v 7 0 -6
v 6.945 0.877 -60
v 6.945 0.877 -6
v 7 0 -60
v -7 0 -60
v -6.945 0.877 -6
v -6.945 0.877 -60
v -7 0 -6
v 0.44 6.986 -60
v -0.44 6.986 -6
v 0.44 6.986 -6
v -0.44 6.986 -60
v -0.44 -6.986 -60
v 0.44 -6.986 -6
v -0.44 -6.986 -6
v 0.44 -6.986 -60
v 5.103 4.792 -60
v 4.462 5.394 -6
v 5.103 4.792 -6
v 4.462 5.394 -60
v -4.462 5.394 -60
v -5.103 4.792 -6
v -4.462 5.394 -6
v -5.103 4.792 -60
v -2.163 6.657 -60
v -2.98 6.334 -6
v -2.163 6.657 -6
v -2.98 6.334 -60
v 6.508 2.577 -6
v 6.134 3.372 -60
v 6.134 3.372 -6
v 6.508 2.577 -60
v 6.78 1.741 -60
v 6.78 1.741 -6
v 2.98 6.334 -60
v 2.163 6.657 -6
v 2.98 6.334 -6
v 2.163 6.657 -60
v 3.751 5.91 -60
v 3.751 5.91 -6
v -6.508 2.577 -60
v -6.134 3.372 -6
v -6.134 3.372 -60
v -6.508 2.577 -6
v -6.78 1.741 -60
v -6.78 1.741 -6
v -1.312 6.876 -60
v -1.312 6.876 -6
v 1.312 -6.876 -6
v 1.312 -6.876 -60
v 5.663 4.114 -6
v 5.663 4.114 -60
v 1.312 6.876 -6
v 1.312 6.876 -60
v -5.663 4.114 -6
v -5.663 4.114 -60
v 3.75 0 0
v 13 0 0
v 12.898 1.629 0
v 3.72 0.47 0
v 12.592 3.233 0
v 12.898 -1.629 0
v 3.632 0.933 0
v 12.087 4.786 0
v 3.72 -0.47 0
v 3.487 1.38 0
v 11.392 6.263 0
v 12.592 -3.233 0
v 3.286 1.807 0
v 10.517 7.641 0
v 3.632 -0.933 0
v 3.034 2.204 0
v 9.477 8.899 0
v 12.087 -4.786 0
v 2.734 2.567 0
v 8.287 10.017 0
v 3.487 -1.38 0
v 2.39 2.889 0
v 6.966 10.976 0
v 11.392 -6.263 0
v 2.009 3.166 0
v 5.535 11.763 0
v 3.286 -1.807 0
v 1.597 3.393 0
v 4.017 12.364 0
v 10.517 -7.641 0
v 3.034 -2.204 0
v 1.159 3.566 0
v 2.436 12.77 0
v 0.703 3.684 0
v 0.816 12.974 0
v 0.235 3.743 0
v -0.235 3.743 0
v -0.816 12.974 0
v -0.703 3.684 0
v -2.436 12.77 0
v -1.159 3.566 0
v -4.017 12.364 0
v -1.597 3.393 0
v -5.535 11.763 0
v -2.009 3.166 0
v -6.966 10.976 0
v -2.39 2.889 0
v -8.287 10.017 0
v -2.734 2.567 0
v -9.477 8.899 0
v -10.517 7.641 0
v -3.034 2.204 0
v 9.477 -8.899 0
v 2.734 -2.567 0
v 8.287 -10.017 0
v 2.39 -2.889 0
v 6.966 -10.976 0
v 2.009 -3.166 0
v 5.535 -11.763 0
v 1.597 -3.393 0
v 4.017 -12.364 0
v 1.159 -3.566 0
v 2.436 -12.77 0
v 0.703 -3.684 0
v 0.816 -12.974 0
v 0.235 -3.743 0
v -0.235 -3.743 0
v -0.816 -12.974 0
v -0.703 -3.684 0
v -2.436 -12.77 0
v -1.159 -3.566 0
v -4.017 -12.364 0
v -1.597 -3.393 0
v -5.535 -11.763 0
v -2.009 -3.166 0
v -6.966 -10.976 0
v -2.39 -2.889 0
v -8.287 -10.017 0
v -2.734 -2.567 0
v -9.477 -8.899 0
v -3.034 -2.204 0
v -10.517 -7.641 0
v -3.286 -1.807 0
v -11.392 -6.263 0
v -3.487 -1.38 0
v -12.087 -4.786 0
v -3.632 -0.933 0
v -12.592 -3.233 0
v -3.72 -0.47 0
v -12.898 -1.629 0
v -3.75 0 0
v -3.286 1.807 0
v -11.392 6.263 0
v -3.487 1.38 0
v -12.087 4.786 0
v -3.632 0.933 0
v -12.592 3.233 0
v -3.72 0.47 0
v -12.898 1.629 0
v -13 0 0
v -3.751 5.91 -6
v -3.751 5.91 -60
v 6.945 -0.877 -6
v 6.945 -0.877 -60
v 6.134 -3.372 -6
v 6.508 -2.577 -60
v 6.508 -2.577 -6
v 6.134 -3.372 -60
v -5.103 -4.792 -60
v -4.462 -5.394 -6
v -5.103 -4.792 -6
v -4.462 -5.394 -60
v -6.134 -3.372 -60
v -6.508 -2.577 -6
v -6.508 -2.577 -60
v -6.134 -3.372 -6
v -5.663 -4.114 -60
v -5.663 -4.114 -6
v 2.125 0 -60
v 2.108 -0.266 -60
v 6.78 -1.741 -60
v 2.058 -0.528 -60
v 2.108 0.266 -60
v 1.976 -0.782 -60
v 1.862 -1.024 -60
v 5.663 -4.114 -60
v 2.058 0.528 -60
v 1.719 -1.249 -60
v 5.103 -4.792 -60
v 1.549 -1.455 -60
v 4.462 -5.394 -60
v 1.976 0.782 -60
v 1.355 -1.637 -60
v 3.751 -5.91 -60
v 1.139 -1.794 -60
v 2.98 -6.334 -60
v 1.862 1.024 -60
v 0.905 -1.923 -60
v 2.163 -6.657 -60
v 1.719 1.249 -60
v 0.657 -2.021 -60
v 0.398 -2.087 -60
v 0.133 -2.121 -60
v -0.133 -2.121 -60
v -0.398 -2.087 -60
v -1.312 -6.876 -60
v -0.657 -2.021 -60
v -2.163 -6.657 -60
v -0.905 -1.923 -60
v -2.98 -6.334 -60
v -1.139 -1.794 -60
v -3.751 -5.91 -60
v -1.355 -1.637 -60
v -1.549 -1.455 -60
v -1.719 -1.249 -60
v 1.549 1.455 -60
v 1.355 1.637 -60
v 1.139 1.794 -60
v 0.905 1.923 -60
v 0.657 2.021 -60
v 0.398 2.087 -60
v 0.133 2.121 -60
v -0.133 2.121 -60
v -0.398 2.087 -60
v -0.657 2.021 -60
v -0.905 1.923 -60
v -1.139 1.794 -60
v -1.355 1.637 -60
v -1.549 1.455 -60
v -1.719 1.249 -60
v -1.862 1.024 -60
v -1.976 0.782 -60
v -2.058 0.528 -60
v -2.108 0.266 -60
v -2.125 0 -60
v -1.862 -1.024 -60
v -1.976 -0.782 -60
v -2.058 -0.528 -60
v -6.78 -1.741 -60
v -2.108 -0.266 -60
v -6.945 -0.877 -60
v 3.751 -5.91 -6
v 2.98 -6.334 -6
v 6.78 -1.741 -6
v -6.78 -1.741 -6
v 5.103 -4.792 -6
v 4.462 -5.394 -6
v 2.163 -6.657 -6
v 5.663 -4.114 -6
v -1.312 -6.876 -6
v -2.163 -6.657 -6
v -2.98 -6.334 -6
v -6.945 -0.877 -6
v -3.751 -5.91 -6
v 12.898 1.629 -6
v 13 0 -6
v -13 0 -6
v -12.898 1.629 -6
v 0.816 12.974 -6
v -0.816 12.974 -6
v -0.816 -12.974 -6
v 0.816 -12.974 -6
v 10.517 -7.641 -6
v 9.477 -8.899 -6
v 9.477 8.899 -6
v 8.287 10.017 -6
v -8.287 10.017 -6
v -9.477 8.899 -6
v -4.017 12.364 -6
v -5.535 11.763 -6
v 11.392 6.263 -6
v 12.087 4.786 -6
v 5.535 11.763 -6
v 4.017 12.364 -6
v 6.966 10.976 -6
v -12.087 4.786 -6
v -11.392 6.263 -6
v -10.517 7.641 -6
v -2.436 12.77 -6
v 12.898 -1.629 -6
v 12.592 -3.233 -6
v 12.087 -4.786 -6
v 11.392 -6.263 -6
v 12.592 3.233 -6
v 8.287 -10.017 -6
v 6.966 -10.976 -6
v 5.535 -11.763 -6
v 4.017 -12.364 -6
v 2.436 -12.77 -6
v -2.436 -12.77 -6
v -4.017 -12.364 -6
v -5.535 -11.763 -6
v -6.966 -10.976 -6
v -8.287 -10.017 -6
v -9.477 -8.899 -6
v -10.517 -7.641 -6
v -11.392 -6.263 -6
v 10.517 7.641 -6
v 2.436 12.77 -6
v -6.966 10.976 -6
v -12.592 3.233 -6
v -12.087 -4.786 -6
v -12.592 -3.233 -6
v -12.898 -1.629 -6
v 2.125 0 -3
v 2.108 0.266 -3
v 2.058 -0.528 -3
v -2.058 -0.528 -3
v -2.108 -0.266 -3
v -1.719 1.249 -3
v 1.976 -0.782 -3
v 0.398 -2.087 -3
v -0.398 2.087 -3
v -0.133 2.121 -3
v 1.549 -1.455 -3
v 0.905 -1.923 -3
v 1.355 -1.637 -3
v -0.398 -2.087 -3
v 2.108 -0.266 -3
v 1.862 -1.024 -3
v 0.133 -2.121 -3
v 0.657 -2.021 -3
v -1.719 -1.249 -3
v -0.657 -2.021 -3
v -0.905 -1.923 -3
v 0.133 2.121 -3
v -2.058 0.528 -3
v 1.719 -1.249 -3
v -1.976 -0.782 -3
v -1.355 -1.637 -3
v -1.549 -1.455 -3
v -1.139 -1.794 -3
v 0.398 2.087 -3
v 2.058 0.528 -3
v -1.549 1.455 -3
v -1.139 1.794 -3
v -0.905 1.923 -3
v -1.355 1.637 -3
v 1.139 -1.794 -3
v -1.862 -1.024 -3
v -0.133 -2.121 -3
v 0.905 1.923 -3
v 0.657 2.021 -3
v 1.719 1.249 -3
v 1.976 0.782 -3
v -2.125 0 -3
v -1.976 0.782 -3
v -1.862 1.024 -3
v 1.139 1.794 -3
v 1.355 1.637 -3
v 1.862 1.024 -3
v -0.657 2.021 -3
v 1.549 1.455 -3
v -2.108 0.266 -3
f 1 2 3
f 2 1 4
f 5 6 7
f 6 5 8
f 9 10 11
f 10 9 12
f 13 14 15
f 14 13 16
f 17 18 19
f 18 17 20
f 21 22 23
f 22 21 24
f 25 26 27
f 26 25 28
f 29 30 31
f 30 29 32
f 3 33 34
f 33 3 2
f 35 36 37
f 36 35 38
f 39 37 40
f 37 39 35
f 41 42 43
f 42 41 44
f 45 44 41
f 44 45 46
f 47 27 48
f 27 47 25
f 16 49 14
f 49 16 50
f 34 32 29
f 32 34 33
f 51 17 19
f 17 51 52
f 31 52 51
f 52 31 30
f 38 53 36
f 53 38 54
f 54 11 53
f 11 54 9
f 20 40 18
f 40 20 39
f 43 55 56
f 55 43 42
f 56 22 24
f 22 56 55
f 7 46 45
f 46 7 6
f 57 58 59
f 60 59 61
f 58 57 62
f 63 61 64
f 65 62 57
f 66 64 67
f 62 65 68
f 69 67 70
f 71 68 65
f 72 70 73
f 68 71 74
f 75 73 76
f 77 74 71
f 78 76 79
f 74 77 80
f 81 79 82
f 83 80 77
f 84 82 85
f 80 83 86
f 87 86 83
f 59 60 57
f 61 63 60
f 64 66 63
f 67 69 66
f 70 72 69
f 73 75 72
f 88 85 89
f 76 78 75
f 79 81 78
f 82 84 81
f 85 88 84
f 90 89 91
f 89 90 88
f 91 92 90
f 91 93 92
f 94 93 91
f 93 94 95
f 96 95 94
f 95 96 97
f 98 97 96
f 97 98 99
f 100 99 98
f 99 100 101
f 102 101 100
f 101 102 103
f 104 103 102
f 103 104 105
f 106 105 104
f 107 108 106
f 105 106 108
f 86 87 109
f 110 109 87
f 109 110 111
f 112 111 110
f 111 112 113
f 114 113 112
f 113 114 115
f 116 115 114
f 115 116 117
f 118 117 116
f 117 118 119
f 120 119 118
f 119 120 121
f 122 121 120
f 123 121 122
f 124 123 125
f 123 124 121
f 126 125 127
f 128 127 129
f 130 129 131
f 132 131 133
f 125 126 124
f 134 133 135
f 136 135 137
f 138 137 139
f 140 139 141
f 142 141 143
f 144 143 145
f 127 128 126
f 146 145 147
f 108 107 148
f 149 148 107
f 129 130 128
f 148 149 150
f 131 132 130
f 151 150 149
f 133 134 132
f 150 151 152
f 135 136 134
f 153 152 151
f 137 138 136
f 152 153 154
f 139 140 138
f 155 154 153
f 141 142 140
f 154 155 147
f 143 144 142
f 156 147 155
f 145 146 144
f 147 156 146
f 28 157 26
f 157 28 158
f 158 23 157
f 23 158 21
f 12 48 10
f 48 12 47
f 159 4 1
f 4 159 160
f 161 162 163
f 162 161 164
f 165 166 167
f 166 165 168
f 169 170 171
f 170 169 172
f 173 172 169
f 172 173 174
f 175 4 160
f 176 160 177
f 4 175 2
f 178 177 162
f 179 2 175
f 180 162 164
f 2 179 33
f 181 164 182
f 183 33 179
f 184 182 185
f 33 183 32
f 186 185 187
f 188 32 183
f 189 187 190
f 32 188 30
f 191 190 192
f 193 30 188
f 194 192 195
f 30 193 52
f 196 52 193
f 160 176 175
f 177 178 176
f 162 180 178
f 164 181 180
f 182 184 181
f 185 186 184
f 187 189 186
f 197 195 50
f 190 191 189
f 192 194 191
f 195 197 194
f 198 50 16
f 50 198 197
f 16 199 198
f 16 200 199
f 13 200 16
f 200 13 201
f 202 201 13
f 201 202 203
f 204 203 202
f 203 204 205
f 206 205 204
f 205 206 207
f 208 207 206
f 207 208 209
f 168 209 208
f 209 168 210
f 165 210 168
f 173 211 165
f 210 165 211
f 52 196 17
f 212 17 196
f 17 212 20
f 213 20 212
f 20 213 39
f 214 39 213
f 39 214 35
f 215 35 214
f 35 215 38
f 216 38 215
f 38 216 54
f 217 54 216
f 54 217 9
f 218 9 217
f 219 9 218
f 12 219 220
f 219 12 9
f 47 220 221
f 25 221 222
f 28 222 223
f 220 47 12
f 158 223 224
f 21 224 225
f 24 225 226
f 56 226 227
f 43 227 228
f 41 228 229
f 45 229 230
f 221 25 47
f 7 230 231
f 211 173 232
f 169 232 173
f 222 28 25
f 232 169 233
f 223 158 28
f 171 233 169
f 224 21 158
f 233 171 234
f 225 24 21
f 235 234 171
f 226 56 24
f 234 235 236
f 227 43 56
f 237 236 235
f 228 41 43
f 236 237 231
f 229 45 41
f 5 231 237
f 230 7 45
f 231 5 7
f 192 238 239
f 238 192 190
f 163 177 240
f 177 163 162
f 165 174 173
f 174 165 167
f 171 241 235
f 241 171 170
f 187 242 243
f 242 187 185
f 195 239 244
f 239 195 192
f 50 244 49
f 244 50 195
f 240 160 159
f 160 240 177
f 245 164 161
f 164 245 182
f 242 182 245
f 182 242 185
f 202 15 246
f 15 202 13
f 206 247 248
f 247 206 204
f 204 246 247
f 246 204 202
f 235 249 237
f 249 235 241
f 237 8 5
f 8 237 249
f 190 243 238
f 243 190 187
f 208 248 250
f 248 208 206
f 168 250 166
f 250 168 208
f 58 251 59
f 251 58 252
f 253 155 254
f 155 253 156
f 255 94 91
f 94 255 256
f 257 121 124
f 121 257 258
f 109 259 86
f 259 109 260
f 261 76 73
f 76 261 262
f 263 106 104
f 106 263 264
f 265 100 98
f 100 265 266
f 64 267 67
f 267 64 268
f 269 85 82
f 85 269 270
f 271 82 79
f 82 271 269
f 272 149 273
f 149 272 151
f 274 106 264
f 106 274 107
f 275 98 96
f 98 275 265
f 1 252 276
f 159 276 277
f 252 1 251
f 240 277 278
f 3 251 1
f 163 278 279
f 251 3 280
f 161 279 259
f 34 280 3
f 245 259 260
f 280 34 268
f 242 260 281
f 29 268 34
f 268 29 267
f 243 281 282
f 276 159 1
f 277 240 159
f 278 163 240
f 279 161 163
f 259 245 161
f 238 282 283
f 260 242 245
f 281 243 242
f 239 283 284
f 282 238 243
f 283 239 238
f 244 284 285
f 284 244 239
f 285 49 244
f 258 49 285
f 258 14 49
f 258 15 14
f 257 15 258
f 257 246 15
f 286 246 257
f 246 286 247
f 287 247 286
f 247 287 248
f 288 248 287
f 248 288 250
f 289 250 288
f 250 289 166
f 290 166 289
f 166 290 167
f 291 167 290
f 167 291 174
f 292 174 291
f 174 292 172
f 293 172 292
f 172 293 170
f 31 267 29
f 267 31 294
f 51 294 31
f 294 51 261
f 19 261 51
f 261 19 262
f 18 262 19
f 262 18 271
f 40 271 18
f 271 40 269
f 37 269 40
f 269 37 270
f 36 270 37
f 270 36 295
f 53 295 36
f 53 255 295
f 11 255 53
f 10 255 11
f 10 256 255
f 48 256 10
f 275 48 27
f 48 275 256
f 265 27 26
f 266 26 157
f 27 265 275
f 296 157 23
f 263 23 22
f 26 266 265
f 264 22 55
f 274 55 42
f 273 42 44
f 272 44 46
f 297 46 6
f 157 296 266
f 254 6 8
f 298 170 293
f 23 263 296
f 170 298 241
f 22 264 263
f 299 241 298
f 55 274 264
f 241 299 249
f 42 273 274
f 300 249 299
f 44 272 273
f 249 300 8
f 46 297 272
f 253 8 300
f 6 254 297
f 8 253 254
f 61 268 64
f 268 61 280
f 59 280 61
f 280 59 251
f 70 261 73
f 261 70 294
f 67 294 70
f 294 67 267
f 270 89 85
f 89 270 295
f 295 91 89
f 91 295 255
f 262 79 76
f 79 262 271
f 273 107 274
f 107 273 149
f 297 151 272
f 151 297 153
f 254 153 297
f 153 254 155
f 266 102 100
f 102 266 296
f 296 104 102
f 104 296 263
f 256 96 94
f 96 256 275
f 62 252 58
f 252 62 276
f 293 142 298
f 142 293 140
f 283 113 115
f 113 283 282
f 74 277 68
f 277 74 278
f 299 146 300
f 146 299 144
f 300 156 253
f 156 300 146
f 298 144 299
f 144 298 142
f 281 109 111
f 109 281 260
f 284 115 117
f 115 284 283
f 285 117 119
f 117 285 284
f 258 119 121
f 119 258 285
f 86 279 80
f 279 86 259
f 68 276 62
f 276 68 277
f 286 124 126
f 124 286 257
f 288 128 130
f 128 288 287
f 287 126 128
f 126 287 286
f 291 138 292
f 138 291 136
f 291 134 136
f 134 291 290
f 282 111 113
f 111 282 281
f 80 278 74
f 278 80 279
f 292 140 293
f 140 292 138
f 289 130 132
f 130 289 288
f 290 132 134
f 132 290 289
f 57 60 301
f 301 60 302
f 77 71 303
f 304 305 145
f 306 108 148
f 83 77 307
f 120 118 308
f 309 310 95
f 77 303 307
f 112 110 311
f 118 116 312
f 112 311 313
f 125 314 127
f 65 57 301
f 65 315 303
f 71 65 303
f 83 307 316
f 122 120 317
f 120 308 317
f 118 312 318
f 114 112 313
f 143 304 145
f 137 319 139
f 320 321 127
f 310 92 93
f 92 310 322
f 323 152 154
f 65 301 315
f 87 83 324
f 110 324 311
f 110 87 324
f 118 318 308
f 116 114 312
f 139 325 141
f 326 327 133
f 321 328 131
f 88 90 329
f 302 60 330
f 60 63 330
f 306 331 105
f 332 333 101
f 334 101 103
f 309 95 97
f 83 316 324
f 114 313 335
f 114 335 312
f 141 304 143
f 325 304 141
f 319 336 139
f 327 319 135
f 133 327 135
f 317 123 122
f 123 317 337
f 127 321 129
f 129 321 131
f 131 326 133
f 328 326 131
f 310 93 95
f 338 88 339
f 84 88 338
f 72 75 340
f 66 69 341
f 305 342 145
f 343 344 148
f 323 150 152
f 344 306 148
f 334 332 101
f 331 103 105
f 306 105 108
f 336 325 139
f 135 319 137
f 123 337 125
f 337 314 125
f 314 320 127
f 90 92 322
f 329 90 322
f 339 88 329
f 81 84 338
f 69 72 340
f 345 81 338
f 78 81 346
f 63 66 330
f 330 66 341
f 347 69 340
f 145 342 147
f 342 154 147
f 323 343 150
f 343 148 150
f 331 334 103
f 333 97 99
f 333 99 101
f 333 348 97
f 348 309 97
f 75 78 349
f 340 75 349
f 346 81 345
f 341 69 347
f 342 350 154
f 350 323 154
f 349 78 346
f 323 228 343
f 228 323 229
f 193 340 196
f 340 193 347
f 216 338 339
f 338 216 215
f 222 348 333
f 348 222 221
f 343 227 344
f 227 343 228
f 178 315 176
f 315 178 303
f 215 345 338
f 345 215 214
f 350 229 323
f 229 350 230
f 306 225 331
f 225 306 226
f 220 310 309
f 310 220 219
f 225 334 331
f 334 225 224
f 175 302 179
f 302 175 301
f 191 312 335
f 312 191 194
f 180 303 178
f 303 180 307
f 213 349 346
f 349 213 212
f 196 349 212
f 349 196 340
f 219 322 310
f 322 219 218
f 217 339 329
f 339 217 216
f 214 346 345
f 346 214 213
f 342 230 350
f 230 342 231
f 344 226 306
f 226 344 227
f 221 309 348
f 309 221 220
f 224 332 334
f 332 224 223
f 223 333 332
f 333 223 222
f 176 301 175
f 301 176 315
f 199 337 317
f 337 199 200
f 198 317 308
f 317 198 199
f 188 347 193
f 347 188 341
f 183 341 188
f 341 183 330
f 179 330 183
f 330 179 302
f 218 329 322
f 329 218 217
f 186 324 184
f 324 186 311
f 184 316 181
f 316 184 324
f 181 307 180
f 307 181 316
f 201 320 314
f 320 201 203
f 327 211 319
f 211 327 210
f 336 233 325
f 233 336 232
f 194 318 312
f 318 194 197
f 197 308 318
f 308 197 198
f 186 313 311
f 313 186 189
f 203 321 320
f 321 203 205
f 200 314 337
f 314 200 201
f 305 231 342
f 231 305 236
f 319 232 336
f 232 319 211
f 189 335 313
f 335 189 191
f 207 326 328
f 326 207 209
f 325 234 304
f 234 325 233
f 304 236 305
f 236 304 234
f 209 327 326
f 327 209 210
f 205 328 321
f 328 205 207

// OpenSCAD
$fn = 50;


difference() {
	union() {
		translate(v = [0, 0, -60.0000000000]) {
			cylinder(h = 60, r = 7.0000000000);
		}
		translate(v = [0, 0, -6.0000000000]) {
			cylinder(h = 6, r = 13.0000000000);
		}
	}
	union() {
		translate(v = [0, 0, 0]) {
			rotate(a = [0, 0, 0]) {
				difference() {
					union() {
						#translate(v = [0, 0, -60.0000000000]) {
							cylinder(h = 60, r = 2.0000000000);
						}
						#translate(v = [0, 0, -3]) {
							cylinder(h = 3, r1 = 2.1250000000, r2 = 3.7500000000);
						}
						#translate(v = [0, 0, -60.0000000000]) {
							cylinder(h = 60, r = 2.1250000000);
						}
						#translate(v = [0, 0, -60.0000000000]) {
							cylinder(h = 60, r = 2.0000000000);
						}
					}
					union();
				}
			}
		}
	}
}
